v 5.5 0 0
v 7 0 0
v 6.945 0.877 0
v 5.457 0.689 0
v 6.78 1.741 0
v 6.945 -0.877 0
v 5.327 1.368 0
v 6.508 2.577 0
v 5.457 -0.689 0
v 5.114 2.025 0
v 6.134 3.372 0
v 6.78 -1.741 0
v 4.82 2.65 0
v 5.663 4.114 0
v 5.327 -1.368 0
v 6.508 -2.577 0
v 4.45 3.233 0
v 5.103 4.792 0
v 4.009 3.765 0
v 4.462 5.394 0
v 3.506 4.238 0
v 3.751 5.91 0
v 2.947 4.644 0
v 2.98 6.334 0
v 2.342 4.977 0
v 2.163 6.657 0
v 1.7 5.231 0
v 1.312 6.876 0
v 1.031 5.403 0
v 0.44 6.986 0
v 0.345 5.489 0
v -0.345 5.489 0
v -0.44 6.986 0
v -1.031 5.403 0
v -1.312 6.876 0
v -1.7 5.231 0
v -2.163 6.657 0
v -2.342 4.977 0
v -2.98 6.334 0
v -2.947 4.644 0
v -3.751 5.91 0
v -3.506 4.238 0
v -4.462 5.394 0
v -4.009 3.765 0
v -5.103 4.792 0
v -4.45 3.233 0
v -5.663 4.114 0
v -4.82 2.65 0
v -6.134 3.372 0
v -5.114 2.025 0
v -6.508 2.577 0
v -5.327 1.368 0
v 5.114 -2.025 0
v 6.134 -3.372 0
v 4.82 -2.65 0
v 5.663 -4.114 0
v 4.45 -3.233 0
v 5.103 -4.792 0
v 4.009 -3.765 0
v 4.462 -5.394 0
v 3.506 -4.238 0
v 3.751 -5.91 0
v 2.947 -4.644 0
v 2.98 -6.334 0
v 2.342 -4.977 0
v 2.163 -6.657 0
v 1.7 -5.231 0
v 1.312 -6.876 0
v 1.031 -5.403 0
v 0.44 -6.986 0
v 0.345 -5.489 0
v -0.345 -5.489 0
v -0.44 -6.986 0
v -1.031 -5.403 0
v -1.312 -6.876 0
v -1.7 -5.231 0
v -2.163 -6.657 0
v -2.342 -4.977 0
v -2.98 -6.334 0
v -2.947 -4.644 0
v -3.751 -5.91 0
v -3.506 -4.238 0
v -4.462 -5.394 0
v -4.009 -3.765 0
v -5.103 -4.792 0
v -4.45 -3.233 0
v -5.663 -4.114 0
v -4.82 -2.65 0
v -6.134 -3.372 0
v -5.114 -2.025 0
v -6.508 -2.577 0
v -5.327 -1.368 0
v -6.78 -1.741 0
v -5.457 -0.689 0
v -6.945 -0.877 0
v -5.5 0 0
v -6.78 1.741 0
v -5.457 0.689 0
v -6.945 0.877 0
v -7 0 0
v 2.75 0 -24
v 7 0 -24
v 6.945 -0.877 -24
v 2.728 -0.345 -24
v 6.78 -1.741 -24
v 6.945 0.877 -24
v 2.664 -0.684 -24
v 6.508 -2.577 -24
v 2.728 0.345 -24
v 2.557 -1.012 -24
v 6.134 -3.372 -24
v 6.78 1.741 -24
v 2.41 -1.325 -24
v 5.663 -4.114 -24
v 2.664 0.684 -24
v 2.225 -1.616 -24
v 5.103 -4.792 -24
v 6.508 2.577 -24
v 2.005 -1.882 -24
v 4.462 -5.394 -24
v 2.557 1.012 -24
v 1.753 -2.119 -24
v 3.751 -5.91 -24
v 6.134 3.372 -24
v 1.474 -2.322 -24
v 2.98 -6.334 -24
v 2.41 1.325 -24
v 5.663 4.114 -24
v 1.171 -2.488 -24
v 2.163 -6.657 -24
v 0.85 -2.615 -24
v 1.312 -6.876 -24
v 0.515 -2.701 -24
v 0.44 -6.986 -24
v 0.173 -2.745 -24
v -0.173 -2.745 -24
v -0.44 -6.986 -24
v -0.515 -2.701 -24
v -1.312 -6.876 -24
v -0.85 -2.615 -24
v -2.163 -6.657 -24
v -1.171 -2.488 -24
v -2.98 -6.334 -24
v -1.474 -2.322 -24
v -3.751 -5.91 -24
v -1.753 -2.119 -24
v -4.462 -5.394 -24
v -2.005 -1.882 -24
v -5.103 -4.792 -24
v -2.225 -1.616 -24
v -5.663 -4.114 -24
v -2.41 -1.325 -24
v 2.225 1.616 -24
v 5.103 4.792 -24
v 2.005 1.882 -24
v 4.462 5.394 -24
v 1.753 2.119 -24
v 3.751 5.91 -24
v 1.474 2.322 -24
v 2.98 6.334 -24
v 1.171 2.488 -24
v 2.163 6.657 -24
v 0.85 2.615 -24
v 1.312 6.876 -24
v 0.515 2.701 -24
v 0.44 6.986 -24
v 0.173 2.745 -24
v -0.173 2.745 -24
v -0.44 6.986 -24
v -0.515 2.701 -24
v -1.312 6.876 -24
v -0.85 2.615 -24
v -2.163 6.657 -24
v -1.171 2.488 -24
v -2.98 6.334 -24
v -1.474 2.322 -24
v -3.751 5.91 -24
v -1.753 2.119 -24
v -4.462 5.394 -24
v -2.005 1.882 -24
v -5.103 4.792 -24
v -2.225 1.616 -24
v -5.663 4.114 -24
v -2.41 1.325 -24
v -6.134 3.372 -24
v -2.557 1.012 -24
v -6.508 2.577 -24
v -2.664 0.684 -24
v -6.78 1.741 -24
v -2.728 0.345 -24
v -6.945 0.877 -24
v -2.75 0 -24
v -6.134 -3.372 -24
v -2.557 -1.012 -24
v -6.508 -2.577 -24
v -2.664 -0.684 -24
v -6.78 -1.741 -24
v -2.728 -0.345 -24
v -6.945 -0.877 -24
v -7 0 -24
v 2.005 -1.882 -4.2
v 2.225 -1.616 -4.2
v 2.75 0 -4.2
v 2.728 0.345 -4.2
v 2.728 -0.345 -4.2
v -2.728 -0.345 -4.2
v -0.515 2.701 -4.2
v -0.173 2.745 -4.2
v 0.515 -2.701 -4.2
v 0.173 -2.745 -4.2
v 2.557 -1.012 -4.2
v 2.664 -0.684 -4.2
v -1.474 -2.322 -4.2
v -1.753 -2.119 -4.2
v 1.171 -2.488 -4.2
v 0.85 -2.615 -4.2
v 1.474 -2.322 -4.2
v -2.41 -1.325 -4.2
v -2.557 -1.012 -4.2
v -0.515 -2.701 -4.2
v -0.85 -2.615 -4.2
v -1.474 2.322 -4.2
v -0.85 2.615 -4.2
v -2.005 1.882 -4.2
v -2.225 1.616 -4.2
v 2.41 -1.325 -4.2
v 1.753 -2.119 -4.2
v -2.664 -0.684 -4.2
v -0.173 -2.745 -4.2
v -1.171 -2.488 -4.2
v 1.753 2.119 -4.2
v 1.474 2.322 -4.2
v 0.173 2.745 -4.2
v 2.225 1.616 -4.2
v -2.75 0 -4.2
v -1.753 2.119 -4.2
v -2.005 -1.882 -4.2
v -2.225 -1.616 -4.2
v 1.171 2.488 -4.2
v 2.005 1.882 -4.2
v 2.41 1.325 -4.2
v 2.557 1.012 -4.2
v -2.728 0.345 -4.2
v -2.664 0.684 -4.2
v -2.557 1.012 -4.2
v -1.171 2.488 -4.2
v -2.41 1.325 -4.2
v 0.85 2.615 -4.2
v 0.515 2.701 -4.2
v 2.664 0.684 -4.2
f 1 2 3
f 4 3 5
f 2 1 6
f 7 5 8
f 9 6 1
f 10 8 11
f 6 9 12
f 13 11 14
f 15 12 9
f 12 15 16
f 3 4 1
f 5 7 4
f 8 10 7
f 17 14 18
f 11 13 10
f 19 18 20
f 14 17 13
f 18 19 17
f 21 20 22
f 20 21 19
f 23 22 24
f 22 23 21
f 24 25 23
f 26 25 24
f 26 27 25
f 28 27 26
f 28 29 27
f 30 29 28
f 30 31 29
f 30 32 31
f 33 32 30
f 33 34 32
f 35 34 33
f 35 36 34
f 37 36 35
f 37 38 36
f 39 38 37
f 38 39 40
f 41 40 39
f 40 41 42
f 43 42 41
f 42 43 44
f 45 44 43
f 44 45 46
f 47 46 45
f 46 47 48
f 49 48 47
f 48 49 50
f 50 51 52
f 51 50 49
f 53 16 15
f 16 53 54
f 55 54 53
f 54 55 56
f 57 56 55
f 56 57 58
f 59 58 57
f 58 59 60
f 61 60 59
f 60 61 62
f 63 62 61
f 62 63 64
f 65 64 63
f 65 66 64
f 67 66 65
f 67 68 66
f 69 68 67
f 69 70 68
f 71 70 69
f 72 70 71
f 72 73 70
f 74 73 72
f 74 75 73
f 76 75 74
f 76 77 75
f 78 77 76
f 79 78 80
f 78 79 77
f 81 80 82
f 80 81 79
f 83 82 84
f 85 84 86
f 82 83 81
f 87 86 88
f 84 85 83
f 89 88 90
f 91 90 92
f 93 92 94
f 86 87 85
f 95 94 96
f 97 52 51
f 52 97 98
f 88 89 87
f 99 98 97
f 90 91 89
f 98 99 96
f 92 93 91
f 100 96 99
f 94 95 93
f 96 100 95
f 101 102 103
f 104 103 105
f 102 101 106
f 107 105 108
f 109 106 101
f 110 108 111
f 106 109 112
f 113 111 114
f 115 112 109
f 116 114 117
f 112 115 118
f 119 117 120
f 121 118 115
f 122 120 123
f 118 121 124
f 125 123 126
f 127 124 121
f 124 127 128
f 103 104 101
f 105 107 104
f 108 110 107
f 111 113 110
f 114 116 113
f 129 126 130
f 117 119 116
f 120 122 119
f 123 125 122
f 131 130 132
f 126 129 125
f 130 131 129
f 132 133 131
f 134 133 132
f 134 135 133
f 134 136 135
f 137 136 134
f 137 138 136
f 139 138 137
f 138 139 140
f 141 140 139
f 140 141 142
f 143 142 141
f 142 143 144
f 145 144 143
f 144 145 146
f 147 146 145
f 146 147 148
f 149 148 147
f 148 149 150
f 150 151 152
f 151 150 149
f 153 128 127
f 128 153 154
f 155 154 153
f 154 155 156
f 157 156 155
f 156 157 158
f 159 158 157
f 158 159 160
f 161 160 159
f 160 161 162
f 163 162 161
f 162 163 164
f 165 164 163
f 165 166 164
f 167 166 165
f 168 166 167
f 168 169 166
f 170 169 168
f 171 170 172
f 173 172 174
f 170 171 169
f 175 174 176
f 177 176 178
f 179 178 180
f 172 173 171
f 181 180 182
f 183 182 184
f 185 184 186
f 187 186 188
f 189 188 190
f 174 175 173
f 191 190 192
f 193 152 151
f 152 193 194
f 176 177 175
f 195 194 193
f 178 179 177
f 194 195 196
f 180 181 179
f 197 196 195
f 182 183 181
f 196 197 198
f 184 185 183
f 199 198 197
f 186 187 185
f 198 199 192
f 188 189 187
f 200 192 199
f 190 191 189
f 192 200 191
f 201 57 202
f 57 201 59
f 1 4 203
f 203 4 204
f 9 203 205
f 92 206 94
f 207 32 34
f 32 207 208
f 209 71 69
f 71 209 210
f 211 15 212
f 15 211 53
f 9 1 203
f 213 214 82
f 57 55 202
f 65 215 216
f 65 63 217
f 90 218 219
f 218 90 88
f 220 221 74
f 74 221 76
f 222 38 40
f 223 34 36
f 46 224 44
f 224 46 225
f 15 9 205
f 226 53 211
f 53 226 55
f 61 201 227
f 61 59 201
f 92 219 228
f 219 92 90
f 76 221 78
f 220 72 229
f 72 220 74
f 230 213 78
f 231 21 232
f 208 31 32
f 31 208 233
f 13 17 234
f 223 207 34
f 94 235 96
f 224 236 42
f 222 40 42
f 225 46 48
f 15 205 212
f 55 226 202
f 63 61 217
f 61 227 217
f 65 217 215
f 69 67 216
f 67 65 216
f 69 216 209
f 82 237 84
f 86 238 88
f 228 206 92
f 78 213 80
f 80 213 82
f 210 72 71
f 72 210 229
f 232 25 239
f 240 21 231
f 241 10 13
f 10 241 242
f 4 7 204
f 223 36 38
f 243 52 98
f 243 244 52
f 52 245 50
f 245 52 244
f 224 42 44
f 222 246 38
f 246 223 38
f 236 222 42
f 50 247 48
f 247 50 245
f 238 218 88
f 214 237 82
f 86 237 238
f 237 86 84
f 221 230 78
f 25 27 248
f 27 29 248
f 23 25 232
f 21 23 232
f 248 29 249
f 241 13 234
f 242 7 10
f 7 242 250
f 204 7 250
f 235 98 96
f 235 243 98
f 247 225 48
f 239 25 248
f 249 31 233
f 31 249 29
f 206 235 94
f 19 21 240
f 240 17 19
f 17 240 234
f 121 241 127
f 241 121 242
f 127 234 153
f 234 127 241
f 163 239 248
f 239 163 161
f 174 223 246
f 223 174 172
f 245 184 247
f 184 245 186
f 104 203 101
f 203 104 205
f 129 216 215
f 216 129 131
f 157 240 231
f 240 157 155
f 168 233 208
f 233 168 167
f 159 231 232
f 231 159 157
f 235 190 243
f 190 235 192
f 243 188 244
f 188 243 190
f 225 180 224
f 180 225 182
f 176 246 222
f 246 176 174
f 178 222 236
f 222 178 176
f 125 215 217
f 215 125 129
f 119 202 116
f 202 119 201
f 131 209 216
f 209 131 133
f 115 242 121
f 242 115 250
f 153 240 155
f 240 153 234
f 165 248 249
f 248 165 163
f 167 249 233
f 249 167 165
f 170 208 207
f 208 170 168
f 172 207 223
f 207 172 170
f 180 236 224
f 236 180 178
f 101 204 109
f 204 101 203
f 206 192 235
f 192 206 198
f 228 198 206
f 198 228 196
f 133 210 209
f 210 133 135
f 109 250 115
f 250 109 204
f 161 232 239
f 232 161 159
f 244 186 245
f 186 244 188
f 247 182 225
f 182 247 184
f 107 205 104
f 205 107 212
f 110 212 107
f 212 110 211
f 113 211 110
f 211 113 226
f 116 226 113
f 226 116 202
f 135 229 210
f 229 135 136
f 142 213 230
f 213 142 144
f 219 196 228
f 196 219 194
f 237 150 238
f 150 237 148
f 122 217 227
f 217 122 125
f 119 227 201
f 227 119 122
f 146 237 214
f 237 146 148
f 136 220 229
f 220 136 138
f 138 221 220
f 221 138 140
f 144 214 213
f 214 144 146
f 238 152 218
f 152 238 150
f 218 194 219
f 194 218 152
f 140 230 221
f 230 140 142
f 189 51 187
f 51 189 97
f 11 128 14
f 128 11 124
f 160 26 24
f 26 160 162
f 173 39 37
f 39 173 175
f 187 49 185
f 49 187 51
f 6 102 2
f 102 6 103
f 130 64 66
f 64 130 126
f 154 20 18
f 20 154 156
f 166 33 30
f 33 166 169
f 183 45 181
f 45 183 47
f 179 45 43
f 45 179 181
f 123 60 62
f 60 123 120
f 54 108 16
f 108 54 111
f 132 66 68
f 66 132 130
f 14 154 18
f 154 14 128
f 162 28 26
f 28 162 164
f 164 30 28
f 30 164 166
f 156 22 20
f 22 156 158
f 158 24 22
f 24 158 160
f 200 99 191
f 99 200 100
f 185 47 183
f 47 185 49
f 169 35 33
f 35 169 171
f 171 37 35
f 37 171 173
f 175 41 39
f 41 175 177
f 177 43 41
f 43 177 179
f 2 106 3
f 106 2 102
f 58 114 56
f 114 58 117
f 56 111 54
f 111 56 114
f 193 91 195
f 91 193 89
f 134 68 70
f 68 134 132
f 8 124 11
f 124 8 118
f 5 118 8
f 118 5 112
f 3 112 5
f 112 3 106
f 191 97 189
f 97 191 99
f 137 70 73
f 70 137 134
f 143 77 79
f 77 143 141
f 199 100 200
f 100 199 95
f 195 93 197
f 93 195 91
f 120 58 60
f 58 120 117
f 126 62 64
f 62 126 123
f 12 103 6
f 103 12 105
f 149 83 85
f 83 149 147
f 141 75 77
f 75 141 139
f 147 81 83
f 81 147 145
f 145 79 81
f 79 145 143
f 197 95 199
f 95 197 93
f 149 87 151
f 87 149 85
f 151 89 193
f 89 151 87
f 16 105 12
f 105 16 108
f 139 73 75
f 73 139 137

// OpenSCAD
$fn = 50;


difference() {
	union() {
		translate(v = [0, 0, -24.0000000000]) {
			cylinder(h = 24, r = 7.0000000000);
		}
		cylinder(h = 0, r = 16.0000000000);
	}
	union() {
		translate(v = [0, 0, 0]) {
			rotate(a = [0, 0, 0]) {
				difference() {
					union() {
						#translate(v = [0, 0, -24.0000000000]) {
							cylinder(h = 24, r = 2.2500000000);
						}
						#translate(v = [0, 0, -4.2000000000]) {
							cylinder(h = 4.2000000000, r1 = 2.7500000000, r2 = 5.5000000000);
						}
						#translate(v = [0, 0, -24.0000000000]) {
							cylinder(h = 24, r = 2.7500000000);
						}
						#translate(v = [0, 0, -24.0000000000]) {
							cylinder(h = 24, r = 2.2500000000);
						}
					}
					union();
				}
			}
		}
	}
}
